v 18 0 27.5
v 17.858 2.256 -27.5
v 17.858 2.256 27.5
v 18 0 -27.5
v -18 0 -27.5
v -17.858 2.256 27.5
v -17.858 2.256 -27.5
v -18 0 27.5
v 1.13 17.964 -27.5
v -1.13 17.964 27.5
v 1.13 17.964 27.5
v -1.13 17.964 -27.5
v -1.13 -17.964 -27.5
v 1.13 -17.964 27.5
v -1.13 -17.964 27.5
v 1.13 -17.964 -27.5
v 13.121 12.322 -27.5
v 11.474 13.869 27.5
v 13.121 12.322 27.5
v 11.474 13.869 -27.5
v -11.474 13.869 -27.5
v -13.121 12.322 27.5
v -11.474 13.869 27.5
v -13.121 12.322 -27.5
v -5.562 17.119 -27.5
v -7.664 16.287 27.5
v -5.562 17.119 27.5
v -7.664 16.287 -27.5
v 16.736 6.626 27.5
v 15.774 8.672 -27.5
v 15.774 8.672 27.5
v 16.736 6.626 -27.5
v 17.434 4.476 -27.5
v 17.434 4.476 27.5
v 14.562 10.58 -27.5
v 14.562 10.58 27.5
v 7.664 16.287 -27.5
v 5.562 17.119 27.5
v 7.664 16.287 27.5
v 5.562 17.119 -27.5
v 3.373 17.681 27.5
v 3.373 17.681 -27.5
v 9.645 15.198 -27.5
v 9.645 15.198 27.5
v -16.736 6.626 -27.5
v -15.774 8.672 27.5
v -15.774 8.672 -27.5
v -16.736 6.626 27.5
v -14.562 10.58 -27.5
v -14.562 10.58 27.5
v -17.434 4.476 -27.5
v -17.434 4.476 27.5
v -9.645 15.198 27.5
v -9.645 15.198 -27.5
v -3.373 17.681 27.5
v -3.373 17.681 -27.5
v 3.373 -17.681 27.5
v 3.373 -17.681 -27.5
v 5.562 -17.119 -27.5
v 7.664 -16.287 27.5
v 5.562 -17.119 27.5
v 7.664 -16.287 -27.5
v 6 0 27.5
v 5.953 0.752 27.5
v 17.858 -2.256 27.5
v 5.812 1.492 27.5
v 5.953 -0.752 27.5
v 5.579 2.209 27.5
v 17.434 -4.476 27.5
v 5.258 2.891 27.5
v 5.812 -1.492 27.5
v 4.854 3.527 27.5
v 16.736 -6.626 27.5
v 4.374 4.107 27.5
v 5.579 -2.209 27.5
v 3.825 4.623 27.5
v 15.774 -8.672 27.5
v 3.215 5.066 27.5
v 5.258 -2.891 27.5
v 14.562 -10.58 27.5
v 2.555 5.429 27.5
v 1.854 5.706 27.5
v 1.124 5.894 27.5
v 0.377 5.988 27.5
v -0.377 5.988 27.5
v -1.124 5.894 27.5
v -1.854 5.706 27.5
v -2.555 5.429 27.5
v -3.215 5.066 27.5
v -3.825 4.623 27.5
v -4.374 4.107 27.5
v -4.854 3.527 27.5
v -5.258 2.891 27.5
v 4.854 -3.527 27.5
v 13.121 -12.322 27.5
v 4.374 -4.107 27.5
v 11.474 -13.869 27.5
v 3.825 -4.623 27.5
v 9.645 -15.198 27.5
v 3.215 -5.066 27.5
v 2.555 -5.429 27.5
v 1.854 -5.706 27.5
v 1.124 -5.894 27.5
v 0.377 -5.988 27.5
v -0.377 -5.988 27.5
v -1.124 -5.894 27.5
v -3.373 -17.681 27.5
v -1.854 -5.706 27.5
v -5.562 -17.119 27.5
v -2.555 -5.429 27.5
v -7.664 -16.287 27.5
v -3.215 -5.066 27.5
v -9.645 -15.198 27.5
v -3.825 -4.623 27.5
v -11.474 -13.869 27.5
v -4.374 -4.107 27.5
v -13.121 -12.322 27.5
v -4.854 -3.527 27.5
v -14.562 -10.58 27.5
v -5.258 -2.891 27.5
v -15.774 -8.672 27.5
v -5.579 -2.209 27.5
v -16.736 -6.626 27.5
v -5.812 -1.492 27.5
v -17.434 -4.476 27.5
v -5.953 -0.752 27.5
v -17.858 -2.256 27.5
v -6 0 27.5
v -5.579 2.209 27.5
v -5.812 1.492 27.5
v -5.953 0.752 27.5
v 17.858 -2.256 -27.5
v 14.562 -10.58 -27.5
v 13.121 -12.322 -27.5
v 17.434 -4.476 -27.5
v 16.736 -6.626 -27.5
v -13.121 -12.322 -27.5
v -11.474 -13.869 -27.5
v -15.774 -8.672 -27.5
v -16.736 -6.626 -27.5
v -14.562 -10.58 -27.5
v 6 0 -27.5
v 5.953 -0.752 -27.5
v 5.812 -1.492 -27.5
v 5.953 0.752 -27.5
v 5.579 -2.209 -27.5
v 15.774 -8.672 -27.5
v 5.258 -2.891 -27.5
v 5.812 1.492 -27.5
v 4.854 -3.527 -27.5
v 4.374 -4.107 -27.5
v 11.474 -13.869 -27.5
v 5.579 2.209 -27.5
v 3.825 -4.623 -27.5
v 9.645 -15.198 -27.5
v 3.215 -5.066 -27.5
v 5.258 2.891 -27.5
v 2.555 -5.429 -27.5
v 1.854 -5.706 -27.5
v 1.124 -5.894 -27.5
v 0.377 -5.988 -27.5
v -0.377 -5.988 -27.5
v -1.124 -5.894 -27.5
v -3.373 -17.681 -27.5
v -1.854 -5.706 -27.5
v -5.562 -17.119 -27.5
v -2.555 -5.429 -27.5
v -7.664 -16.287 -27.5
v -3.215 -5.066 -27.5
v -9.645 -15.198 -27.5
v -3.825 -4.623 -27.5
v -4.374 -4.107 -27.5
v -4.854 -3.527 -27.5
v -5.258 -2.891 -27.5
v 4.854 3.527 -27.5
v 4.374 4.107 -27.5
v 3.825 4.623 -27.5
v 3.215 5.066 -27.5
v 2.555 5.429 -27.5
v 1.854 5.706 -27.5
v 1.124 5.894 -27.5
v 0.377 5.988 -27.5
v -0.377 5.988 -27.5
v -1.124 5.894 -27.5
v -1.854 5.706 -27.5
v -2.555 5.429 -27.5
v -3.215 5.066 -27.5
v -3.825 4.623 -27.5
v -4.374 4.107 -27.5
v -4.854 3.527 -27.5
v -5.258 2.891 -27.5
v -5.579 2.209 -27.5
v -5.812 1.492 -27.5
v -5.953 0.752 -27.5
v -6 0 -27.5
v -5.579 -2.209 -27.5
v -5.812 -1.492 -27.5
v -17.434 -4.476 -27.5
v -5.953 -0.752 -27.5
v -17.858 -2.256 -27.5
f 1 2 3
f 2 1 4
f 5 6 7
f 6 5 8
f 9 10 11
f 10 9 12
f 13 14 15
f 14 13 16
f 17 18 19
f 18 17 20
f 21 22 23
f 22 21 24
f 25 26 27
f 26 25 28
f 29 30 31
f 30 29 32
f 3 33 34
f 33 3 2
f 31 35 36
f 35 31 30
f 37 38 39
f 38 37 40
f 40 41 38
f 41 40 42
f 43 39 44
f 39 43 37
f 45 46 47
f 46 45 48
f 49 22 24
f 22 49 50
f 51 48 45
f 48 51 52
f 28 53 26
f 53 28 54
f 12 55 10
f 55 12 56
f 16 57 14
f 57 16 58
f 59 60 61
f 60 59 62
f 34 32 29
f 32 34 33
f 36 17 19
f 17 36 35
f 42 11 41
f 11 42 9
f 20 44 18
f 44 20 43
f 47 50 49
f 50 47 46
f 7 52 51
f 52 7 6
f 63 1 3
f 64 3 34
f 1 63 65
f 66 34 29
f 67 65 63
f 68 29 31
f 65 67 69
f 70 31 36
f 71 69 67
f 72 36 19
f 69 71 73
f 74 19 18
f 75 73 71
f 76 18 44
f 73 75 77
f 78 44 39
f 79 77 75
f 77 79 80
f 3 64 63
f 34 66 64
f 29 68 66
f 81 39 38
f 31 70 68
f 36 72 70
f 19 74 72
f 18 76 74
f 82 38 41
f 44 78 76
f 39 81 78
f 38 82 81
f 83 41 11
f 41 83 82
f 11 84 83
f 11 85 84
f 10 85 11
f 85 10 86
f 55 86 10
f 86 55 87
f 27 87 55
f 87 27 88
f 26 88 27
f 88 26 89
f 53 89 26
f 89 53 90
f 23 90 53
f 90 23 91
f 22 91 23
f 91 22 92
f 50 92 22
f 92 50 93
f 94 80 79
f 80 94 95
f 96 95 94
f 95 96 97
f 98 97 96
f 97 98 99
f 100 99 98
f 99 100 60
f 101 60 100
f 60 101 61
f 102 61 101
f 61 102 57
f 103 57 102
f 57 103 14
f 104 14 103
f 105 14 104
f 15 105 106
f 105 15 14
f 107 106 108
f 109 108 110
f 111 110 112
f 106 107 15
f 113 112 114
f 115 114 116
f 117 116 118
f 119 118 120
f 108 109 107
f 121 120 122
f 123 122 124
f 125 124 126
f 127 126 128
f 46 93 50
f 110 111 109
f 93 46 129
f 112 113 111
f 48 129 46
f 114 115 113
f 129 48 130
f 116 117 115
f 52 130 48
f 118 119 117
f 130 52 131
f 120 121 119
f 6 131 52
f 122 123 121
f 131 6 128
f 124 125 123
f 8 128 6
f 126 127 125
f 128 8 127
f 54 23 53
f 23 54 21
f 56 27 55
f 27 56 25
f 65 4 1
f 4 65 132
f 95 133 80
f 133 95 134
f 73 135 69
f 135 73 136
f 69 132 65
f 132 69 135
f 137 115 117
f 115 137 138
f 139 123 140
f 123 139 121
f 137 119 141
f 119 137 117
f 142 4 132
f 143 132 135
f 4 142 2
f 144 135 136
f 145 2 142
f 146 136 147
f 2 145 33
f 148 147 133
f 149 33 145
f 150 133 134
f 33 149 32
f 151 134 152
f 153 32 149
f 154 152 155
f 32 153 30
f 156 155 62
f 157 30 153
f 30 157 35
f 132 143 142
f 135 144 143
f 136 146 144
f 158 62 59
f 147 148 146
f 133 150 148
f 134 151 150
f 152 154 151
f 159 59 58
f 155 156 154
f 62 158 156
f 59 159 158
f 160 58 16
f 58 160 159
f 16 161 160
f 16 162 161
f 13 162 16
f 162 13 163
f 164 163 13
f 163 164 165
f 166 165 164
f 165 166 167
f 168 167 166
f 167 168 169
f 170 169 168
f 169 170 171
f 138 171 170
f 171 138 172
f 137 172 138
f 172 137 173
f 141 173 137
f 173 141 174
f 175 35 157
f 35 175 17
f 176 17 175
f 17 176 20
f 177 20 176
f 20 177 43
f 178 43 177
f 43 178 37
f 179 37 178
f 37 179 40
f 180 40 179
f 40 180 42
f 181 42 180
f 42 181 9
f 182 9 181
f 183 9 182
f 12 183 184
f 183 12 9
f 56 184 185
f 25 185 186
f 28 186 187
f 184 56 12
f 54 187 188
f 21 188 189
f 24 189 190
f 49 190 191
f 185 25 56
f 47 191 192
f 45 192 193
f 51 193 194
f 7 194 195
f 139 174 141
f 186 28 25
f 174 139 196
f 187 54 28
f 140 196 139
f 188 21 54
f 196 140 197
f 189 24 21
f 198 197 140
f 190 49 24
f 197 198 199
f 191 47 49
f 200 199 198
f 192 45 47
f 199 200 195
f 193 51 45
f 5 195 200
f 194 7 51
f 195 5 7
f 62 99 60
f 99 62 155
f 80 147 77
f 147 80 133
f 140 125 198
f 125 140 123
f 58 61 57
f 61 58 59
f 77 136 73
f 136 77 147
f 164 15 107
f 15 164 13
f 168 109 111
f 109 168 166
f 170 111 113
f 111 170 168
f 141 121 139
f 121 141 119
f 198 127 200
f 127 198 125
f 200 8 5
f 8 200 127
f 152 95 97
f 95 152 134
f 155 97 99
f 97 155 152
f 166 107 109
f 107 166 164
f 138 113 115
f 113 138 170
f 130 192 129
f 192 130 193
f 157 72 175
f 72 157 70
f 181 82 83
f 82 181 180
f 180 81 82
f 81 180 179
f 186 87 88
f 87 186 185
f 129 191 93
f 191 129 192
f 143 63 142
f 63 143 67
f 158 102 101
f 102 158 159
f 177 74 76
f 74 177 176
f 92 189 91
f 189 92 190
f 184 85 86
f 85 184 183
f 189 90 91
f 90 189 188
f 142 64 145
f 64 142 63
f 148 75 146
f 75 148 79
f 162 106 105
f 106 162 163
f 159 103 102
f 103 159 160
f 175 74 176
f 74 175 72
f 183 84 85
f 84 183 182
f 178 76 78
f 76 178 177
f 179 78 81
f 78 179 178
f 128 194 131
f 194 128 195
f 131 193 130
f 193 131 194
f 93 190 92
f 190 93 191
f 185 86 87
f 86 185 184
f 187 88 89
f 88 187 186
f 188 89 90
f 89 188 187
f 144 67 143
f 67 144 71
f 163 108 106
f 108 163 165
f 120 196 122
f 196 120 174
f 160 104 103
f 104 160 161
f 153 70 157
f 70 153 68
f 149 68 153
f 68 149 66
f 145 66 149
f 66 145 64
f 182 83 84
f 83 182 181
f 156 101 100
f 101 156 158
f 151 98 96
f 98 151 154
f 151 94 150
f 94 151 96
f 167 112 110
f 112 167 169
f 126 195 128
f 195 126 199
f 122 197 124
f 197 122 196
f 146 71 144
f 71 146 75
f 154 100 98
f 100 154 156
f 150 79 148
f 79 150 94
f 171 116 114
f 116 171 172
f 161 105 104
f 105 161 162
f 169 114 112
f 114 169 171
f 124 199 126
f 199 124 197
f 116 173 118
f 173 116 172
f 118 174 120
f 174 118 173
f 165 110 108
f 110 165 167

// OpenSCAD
$fn = 50;


difference() {
	union() {
		translate(v = [0, 0, -27.5000000000]) {
			cylinder(h = 55, r = 18.0000000000);
		}
	}
	union() {
		translate(v = [0, 0, -100.0000000000]) {
			cylinder(h = 200, r = 6);
		}
	}
}
